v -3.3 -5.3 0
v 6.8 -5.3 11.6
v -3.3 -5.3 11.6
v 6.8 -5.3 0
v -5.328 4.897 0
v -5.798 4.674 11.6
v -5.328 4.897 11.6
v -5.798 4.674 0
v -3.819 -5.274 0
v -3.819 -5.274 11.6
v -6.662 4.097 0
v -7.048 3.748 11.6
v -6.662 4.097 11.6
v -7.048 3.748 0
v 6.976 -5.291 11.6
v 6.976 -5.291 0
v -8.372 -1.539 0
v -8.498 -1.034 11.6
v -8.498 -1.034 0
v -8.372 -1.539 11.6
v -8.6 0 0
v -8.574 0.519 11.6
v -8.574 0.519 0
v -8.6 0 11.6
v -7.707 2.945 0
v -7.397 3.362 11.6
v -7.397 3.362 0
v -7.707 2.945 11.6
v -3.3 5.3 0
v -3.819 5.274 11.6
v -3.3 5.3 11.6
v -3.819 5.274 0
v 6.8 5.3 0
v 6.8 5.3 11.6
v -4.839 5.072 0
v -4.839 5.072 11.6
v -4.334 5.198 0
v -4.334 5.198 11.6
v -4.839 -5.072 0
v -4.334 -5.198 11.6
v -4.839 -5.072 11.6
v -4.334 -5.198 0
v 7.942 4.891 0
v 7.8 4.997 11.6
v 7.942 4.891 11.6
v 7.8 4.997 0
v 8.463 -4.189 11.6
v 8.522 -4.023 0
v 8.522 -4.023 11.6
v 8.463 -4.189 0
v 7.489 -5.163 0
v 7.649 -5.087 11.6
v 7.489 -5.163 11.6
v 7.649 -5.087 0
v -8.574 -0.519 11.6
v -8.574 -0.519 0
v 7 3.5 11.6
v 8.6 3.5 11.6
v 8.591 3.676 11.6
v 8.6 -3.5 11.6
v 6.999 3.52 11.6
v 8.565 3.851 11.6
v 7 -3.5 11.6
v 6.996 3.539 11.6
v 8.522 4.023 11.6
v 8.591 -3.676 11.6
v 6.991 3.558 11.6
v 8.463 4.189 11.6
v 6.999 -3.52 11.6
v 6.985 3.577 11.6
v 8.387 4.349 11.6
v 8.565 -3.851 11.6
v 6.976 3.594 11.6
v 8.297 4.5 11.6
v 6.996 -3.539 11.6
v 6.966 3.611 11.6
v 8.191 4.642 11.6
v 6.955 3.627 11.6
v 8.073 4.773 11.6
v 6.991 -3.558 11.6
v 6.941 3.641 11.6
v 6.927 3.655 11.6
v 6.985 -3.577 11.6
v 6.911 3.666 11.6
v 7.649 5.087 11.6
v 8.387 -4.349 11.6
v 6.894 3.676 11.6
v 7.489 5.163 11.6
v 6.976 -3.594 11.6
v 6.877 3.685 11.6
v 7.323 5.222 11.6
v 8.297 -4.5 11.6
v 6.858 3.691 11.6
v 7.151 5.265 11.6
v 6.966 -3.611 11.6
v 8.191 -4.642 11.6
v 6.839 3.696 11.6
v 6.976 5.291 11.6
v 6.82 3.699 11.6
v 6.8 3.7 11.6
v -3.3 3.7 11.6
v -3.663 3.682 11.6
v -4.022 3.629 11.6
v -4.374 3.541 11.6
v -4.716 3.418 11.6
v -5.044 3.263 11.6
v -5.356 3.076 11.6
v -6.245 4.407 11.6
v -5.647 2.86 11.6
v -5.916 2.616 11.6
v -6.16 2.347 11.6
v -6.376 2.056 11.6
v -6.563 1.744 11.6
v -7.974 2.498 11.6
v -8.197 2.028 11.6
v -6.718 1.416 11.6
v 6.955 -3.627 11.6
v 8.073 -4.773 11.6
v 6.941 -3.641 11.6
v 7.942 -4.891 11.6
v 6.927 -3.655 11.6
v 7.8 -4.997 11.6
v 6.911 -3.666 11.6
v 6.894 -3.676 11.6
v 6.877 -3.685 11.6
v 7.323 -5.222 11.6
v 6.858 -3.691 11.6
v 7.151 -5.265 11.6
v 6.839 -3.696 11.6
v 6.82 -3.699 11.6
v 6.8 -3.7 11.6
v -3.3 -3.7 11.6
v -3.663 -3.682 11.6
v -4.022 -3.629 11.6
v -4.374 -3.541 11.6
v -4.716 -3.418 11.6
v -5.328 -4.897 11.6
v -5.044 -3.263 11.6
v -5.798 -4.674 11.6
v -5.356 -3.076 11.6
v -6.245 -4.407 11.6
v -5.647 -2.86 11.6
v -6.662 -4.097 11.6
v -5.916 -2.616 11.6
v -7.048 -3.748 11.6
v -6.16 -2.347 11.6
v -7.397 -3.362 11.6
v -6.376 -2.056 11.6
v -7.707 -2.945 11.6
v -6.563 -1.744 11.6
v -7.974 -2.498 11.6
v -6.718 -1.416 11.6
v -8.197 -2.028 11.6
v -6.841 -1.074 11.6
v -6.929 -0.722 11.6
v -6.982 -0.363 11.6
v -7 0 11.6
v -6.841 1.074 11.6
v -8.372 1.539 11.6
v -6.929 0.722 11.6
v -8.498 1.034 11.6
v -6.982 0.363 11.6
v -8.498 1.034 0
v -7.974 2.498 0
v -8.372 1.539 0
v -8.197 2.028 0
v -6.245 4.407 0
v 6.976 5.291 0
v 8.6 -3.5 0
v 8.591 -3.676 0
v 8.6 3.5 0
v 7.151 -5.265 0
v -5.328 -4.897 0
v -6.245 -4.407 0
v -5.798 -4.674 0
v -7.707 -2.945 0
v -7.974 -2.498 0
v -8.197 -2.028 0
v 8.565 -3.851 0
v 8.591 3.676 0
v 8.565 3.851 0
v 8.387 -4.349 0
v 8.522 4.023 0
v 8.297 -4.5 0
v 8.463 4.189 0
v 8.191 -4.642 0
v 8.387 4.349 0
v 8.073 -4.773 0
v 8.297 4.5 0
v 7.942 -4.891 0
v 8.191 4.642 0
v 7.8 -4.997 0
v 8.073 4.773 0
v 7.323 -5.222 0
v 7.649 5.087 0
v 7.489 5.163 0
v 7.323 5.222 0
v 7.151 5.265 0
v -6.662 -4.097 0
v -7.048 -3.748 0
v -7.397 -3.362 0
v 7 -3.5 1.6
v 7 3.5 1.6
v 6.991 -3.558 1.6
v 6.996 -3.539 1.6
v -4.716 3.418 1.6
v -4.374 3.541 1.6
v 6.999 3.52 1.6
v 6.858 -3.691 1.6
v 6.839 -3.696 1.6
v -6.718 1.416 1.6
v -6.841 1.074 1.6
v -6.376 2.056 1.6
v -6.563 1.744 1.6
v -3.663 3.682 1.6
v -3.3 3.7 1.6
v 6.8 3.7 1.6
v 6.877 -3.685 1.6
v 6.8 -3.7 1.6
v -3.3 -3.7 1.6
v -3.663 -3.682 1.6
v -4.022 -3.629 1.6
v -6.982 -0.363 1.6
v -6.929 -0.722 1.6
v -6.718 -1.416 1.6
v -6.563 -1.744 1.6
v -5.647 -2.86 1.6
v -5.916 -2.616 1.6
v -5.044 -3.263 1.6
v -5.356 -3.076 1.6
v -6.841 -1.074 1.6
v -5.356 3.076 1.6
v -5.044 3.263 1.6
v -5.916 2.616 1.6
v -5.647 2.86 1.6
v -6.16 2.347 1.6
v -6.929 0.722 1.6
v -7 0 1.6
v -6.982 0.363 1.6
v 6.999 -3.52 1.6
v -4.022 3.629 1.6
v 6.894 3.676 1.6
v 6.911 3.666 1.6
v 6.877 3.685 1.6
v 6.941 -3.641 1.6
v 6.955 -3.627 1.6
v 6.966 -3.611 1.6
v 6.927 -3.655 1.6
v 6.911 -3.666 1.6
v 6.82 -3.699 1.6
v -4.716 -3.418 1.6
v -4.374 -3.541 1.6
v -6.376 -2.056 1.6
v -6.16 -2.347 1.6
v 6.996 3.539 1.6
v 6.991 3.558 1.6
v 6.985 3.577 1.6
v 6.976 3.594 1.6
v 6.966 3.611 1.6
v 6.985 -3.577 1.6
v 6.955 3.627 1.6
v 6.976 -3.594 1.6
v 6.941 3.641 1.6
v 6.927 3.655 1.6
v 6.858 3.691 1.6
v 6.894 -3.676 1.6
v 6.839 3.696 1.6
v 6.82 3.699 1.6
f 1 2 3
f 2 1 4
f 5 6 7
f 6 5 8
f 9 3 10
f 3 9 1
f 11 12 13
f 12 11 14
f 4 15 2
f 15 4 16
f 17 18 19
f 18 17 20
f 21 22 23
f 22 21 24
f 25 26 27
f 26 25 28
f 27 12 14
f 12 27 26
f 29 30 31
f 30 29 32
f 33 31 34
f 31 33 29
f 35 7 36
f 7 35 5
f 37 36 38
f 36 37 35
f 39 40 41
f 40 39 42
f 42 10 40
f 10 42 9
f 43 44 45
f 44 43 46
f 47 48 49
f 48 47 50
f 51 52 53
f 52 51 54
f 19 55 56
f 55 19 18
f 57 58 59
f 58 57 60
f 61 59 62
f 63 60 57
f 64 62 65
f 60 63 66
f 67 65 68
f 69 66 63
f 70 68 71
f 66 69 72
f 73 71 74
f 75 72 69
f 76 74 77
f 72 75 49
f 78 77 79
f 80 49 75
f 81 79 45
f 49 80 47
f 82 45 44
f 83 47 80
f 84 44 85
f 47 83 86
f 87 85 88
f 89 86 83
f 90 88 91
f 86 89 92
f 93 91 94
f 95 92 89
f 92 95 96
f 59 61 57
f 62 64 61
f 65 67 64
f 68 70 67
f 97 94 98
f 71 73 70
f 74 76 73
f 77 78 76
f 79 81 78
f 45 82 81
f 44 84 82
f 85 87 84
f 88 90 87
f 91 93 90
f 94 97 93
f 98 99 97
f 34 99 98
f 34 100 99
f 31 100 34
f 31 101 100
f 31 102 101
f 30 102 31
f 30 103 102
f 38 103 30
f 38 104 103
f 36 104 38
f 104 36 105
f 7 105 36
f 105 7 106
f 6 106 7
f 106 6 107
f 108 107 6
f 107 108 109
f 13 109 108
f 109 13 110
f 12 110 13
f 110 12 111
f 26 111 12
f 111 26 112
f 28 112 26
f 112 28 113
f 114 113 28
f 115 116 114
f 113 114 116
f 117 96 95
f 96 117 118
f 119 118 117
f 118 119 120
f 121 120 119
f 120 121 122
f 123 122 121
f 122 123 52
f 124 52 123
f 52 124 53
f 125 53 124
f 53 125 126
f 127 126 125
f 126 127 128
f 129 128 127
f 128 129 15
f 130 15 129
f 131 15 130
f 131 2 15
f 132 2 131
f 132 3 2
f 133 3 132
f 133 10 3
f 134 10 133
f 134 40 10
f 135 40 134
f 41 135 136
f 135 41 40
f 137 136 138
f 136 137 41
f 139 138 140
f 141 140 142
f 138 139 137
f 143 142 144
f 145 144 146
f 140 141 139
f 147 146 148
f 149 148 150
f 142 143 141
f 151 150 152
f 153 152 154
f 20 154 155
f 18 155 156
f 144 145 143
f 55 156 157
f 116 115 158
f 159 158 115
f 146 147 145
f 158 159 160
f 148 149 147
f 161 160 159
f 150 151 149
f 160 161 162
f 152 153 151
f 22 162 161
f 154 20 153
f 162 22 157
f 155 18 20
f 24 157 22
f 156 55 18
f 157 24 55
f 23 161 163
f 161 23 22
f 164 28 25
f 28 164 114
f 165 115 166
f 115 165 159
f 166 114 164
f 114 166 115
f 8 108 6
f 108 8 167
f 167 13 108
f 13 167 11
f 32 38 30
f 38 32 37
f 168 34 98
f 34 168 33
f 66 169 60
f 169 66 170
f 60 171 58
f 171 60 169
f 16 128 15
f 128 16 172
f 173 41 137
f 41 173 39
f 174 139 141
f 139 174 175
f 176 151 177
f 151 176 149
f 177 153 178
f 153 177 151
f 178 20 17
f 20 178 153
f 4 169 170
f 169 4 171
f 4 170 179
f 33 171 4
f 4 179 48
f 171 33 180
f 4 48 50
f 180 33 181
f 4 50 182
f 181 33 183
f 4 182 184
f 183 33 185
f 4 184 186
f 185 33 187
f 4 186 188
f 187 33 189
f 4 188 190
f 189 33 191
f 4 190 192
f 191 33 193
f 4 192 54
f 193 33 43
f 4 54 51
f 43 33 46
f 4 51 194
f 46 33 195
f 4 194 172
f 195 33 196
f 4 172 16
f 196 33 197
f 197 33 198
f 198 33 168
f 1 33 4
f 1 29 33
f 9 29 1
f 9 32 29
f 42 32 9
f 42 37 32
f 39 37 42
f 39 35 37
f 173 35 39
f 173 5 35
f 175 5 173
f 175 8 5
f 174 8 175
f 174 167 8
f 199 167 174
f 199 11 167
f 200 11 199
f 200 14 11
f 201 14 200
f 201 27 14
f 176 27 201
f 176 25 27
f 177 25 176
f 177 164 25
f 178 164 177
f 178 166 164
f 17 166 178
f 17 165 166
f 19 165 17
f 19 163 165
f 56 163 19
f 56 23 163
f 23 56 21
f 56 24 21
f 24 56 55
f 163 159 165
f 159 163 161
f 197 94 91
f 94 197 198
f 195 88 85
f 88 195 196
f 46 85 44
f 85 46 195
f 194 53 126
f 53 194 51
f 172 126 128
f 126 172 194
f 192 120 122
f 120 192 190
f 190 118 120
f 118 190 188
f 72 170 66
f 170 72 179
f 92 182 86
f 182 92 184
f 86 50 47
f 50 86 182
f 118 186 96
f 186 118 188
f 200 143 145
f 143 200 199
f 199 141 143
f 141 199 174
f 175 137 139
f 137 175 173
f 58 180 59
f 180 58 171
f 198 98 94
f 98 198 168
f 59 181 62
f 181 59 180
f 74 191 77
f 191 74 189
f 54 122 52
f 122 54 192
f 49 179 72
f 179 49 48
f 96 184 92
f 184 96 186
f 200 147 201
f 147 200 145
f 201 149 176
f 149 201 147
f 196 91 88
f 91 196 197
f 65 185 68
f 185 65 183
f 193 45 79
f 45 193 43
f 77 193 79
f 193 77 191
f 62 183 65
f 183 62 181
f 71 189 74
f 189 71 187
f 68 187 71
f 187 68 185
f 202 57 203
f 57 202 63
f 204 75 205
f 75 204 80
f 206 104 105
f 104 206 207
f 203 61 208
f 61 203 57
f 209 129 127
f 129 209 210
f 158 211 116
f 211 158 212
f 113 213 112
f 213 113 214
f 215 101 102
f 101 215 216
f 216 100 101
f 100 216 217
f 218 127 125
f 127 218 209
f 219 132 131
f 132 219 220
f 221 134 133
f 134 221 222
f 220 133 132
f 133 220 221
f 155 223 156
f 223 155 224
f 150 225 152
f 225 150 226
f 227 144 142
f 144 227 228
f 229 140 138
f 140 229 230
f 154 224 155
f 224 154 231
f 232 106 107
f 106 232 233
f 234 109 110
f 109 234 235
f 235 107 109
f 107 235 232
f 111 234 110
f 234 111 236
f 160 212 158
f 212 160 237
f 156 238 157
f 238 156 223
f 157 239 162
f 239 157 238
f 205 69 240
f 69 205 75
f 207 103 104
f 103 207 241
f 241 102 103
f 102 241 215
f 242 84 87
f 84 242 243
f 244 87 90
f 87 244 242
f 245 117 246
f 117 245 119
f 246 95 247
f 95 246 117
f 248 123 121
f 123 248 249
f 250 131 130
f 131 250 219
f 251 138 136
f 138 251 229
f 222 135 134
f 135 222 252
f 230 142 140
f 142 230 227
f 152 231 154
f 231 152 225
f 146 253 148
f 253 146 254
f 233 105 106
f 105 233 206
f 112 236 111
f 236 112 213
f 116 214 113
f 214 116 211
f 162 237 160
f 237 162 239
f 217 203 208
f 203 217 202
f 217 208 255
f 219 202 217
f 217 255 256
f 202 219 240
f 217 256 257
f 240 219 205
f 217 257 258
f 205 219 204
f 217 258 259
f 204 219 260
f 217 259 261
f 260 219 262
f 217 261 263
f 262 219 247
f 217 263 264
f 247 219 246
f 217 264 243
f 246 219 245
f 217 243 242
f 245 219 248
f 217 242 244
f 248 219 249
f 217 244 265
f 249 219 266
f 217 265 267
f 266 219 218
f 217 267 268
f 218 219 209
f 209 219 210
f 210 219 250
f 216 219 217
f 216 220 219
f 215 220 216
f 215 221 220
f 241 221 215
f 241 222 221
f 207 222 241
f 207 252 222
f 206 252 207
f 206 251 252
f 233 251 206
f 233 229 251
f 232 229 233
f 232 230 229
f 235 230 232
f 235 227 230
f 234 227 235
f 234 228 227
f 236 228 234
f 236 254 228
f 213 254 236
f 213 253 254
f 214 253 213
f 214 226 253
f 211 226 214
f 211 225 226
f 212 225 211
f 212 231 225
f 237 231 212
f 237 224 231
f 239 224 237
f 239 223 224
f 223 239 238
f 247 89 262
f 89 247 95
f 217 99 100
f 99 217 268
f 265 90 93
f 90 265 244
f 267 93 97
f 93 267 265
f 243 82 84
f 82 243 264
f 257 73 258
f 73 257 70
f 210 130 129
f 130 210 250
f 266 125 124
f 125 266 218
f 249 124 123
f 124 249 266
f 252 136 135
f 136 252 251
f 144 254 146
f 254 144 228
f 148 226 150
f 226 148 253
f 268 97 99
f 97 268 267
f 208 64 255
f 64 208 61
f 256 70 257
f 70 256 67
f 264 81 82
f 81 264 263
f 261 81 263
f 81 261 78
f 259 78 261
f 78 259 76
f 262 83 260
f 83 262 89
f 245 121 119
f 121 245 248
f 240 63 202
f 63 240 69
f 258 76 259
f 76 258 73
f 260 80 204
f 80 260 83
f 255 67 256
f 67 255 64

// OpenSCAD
// A cover for Astroflight zero loss 2 contact female connector.

wall_thickness=1.6;
base_thickness=1.6;

// Tweak to have a tight fit. 
cavity_extra_width = 0.4;

// Tweak if needed to adjust the length of the cavity.
cavity_extra_length = 1.0;

// Extra cavity depth. Default value should be good.
cavity_extra_depth = 0.0;

// Internal readius of the cavity vertical corners. 
cavity_corner_radius = 0.2;

cavity_width  = 7 + cavity_extra_width;
cavity_length = 13 + cavity_extra_length;
cavity_depth = 10 + cavity_extra_depth;

external_width  = cavity_width  + 2*wall_thickness; 
external_length = cavity_length + 2*wall_thickness; 
external_height = base_thickness + cavity_depth;
external_corner_radius = cavity_corner_radius + wall_thickness;

// Adding '0' to make it hidden in thingiverse.
$fn = 0 + 64;
eps1 = 0 + 0.01;

// A block rounded on one and and two rounded corners at the other end,
// center on the z=0 plane.
module shape(w, l, h, r) {
  hull() {
    // Large radius.
    translate([-(l/2-w/2), 0, 0]) cylinder(d=w, h=h);   
    // Two corners.
    translate([(l/2-r), -(w/2-r), 0]) cylinder(r=r, h=h); 
    translate([(l/2-r), (w/2-r), 0]) cylinder(r=r, h=h); 
  }
}

// The entire object.
module main() {
  difference() {  
    // Body 
    shape(external_width, external_length, external_height,
        external_corner_radius);
    // Cavity.
    translate([0, 0, base_thickness]) 
        shape(cavity_width, cavity_length, cavity_depth+eps1, cavity_corner_radius);
  }
}

main();
